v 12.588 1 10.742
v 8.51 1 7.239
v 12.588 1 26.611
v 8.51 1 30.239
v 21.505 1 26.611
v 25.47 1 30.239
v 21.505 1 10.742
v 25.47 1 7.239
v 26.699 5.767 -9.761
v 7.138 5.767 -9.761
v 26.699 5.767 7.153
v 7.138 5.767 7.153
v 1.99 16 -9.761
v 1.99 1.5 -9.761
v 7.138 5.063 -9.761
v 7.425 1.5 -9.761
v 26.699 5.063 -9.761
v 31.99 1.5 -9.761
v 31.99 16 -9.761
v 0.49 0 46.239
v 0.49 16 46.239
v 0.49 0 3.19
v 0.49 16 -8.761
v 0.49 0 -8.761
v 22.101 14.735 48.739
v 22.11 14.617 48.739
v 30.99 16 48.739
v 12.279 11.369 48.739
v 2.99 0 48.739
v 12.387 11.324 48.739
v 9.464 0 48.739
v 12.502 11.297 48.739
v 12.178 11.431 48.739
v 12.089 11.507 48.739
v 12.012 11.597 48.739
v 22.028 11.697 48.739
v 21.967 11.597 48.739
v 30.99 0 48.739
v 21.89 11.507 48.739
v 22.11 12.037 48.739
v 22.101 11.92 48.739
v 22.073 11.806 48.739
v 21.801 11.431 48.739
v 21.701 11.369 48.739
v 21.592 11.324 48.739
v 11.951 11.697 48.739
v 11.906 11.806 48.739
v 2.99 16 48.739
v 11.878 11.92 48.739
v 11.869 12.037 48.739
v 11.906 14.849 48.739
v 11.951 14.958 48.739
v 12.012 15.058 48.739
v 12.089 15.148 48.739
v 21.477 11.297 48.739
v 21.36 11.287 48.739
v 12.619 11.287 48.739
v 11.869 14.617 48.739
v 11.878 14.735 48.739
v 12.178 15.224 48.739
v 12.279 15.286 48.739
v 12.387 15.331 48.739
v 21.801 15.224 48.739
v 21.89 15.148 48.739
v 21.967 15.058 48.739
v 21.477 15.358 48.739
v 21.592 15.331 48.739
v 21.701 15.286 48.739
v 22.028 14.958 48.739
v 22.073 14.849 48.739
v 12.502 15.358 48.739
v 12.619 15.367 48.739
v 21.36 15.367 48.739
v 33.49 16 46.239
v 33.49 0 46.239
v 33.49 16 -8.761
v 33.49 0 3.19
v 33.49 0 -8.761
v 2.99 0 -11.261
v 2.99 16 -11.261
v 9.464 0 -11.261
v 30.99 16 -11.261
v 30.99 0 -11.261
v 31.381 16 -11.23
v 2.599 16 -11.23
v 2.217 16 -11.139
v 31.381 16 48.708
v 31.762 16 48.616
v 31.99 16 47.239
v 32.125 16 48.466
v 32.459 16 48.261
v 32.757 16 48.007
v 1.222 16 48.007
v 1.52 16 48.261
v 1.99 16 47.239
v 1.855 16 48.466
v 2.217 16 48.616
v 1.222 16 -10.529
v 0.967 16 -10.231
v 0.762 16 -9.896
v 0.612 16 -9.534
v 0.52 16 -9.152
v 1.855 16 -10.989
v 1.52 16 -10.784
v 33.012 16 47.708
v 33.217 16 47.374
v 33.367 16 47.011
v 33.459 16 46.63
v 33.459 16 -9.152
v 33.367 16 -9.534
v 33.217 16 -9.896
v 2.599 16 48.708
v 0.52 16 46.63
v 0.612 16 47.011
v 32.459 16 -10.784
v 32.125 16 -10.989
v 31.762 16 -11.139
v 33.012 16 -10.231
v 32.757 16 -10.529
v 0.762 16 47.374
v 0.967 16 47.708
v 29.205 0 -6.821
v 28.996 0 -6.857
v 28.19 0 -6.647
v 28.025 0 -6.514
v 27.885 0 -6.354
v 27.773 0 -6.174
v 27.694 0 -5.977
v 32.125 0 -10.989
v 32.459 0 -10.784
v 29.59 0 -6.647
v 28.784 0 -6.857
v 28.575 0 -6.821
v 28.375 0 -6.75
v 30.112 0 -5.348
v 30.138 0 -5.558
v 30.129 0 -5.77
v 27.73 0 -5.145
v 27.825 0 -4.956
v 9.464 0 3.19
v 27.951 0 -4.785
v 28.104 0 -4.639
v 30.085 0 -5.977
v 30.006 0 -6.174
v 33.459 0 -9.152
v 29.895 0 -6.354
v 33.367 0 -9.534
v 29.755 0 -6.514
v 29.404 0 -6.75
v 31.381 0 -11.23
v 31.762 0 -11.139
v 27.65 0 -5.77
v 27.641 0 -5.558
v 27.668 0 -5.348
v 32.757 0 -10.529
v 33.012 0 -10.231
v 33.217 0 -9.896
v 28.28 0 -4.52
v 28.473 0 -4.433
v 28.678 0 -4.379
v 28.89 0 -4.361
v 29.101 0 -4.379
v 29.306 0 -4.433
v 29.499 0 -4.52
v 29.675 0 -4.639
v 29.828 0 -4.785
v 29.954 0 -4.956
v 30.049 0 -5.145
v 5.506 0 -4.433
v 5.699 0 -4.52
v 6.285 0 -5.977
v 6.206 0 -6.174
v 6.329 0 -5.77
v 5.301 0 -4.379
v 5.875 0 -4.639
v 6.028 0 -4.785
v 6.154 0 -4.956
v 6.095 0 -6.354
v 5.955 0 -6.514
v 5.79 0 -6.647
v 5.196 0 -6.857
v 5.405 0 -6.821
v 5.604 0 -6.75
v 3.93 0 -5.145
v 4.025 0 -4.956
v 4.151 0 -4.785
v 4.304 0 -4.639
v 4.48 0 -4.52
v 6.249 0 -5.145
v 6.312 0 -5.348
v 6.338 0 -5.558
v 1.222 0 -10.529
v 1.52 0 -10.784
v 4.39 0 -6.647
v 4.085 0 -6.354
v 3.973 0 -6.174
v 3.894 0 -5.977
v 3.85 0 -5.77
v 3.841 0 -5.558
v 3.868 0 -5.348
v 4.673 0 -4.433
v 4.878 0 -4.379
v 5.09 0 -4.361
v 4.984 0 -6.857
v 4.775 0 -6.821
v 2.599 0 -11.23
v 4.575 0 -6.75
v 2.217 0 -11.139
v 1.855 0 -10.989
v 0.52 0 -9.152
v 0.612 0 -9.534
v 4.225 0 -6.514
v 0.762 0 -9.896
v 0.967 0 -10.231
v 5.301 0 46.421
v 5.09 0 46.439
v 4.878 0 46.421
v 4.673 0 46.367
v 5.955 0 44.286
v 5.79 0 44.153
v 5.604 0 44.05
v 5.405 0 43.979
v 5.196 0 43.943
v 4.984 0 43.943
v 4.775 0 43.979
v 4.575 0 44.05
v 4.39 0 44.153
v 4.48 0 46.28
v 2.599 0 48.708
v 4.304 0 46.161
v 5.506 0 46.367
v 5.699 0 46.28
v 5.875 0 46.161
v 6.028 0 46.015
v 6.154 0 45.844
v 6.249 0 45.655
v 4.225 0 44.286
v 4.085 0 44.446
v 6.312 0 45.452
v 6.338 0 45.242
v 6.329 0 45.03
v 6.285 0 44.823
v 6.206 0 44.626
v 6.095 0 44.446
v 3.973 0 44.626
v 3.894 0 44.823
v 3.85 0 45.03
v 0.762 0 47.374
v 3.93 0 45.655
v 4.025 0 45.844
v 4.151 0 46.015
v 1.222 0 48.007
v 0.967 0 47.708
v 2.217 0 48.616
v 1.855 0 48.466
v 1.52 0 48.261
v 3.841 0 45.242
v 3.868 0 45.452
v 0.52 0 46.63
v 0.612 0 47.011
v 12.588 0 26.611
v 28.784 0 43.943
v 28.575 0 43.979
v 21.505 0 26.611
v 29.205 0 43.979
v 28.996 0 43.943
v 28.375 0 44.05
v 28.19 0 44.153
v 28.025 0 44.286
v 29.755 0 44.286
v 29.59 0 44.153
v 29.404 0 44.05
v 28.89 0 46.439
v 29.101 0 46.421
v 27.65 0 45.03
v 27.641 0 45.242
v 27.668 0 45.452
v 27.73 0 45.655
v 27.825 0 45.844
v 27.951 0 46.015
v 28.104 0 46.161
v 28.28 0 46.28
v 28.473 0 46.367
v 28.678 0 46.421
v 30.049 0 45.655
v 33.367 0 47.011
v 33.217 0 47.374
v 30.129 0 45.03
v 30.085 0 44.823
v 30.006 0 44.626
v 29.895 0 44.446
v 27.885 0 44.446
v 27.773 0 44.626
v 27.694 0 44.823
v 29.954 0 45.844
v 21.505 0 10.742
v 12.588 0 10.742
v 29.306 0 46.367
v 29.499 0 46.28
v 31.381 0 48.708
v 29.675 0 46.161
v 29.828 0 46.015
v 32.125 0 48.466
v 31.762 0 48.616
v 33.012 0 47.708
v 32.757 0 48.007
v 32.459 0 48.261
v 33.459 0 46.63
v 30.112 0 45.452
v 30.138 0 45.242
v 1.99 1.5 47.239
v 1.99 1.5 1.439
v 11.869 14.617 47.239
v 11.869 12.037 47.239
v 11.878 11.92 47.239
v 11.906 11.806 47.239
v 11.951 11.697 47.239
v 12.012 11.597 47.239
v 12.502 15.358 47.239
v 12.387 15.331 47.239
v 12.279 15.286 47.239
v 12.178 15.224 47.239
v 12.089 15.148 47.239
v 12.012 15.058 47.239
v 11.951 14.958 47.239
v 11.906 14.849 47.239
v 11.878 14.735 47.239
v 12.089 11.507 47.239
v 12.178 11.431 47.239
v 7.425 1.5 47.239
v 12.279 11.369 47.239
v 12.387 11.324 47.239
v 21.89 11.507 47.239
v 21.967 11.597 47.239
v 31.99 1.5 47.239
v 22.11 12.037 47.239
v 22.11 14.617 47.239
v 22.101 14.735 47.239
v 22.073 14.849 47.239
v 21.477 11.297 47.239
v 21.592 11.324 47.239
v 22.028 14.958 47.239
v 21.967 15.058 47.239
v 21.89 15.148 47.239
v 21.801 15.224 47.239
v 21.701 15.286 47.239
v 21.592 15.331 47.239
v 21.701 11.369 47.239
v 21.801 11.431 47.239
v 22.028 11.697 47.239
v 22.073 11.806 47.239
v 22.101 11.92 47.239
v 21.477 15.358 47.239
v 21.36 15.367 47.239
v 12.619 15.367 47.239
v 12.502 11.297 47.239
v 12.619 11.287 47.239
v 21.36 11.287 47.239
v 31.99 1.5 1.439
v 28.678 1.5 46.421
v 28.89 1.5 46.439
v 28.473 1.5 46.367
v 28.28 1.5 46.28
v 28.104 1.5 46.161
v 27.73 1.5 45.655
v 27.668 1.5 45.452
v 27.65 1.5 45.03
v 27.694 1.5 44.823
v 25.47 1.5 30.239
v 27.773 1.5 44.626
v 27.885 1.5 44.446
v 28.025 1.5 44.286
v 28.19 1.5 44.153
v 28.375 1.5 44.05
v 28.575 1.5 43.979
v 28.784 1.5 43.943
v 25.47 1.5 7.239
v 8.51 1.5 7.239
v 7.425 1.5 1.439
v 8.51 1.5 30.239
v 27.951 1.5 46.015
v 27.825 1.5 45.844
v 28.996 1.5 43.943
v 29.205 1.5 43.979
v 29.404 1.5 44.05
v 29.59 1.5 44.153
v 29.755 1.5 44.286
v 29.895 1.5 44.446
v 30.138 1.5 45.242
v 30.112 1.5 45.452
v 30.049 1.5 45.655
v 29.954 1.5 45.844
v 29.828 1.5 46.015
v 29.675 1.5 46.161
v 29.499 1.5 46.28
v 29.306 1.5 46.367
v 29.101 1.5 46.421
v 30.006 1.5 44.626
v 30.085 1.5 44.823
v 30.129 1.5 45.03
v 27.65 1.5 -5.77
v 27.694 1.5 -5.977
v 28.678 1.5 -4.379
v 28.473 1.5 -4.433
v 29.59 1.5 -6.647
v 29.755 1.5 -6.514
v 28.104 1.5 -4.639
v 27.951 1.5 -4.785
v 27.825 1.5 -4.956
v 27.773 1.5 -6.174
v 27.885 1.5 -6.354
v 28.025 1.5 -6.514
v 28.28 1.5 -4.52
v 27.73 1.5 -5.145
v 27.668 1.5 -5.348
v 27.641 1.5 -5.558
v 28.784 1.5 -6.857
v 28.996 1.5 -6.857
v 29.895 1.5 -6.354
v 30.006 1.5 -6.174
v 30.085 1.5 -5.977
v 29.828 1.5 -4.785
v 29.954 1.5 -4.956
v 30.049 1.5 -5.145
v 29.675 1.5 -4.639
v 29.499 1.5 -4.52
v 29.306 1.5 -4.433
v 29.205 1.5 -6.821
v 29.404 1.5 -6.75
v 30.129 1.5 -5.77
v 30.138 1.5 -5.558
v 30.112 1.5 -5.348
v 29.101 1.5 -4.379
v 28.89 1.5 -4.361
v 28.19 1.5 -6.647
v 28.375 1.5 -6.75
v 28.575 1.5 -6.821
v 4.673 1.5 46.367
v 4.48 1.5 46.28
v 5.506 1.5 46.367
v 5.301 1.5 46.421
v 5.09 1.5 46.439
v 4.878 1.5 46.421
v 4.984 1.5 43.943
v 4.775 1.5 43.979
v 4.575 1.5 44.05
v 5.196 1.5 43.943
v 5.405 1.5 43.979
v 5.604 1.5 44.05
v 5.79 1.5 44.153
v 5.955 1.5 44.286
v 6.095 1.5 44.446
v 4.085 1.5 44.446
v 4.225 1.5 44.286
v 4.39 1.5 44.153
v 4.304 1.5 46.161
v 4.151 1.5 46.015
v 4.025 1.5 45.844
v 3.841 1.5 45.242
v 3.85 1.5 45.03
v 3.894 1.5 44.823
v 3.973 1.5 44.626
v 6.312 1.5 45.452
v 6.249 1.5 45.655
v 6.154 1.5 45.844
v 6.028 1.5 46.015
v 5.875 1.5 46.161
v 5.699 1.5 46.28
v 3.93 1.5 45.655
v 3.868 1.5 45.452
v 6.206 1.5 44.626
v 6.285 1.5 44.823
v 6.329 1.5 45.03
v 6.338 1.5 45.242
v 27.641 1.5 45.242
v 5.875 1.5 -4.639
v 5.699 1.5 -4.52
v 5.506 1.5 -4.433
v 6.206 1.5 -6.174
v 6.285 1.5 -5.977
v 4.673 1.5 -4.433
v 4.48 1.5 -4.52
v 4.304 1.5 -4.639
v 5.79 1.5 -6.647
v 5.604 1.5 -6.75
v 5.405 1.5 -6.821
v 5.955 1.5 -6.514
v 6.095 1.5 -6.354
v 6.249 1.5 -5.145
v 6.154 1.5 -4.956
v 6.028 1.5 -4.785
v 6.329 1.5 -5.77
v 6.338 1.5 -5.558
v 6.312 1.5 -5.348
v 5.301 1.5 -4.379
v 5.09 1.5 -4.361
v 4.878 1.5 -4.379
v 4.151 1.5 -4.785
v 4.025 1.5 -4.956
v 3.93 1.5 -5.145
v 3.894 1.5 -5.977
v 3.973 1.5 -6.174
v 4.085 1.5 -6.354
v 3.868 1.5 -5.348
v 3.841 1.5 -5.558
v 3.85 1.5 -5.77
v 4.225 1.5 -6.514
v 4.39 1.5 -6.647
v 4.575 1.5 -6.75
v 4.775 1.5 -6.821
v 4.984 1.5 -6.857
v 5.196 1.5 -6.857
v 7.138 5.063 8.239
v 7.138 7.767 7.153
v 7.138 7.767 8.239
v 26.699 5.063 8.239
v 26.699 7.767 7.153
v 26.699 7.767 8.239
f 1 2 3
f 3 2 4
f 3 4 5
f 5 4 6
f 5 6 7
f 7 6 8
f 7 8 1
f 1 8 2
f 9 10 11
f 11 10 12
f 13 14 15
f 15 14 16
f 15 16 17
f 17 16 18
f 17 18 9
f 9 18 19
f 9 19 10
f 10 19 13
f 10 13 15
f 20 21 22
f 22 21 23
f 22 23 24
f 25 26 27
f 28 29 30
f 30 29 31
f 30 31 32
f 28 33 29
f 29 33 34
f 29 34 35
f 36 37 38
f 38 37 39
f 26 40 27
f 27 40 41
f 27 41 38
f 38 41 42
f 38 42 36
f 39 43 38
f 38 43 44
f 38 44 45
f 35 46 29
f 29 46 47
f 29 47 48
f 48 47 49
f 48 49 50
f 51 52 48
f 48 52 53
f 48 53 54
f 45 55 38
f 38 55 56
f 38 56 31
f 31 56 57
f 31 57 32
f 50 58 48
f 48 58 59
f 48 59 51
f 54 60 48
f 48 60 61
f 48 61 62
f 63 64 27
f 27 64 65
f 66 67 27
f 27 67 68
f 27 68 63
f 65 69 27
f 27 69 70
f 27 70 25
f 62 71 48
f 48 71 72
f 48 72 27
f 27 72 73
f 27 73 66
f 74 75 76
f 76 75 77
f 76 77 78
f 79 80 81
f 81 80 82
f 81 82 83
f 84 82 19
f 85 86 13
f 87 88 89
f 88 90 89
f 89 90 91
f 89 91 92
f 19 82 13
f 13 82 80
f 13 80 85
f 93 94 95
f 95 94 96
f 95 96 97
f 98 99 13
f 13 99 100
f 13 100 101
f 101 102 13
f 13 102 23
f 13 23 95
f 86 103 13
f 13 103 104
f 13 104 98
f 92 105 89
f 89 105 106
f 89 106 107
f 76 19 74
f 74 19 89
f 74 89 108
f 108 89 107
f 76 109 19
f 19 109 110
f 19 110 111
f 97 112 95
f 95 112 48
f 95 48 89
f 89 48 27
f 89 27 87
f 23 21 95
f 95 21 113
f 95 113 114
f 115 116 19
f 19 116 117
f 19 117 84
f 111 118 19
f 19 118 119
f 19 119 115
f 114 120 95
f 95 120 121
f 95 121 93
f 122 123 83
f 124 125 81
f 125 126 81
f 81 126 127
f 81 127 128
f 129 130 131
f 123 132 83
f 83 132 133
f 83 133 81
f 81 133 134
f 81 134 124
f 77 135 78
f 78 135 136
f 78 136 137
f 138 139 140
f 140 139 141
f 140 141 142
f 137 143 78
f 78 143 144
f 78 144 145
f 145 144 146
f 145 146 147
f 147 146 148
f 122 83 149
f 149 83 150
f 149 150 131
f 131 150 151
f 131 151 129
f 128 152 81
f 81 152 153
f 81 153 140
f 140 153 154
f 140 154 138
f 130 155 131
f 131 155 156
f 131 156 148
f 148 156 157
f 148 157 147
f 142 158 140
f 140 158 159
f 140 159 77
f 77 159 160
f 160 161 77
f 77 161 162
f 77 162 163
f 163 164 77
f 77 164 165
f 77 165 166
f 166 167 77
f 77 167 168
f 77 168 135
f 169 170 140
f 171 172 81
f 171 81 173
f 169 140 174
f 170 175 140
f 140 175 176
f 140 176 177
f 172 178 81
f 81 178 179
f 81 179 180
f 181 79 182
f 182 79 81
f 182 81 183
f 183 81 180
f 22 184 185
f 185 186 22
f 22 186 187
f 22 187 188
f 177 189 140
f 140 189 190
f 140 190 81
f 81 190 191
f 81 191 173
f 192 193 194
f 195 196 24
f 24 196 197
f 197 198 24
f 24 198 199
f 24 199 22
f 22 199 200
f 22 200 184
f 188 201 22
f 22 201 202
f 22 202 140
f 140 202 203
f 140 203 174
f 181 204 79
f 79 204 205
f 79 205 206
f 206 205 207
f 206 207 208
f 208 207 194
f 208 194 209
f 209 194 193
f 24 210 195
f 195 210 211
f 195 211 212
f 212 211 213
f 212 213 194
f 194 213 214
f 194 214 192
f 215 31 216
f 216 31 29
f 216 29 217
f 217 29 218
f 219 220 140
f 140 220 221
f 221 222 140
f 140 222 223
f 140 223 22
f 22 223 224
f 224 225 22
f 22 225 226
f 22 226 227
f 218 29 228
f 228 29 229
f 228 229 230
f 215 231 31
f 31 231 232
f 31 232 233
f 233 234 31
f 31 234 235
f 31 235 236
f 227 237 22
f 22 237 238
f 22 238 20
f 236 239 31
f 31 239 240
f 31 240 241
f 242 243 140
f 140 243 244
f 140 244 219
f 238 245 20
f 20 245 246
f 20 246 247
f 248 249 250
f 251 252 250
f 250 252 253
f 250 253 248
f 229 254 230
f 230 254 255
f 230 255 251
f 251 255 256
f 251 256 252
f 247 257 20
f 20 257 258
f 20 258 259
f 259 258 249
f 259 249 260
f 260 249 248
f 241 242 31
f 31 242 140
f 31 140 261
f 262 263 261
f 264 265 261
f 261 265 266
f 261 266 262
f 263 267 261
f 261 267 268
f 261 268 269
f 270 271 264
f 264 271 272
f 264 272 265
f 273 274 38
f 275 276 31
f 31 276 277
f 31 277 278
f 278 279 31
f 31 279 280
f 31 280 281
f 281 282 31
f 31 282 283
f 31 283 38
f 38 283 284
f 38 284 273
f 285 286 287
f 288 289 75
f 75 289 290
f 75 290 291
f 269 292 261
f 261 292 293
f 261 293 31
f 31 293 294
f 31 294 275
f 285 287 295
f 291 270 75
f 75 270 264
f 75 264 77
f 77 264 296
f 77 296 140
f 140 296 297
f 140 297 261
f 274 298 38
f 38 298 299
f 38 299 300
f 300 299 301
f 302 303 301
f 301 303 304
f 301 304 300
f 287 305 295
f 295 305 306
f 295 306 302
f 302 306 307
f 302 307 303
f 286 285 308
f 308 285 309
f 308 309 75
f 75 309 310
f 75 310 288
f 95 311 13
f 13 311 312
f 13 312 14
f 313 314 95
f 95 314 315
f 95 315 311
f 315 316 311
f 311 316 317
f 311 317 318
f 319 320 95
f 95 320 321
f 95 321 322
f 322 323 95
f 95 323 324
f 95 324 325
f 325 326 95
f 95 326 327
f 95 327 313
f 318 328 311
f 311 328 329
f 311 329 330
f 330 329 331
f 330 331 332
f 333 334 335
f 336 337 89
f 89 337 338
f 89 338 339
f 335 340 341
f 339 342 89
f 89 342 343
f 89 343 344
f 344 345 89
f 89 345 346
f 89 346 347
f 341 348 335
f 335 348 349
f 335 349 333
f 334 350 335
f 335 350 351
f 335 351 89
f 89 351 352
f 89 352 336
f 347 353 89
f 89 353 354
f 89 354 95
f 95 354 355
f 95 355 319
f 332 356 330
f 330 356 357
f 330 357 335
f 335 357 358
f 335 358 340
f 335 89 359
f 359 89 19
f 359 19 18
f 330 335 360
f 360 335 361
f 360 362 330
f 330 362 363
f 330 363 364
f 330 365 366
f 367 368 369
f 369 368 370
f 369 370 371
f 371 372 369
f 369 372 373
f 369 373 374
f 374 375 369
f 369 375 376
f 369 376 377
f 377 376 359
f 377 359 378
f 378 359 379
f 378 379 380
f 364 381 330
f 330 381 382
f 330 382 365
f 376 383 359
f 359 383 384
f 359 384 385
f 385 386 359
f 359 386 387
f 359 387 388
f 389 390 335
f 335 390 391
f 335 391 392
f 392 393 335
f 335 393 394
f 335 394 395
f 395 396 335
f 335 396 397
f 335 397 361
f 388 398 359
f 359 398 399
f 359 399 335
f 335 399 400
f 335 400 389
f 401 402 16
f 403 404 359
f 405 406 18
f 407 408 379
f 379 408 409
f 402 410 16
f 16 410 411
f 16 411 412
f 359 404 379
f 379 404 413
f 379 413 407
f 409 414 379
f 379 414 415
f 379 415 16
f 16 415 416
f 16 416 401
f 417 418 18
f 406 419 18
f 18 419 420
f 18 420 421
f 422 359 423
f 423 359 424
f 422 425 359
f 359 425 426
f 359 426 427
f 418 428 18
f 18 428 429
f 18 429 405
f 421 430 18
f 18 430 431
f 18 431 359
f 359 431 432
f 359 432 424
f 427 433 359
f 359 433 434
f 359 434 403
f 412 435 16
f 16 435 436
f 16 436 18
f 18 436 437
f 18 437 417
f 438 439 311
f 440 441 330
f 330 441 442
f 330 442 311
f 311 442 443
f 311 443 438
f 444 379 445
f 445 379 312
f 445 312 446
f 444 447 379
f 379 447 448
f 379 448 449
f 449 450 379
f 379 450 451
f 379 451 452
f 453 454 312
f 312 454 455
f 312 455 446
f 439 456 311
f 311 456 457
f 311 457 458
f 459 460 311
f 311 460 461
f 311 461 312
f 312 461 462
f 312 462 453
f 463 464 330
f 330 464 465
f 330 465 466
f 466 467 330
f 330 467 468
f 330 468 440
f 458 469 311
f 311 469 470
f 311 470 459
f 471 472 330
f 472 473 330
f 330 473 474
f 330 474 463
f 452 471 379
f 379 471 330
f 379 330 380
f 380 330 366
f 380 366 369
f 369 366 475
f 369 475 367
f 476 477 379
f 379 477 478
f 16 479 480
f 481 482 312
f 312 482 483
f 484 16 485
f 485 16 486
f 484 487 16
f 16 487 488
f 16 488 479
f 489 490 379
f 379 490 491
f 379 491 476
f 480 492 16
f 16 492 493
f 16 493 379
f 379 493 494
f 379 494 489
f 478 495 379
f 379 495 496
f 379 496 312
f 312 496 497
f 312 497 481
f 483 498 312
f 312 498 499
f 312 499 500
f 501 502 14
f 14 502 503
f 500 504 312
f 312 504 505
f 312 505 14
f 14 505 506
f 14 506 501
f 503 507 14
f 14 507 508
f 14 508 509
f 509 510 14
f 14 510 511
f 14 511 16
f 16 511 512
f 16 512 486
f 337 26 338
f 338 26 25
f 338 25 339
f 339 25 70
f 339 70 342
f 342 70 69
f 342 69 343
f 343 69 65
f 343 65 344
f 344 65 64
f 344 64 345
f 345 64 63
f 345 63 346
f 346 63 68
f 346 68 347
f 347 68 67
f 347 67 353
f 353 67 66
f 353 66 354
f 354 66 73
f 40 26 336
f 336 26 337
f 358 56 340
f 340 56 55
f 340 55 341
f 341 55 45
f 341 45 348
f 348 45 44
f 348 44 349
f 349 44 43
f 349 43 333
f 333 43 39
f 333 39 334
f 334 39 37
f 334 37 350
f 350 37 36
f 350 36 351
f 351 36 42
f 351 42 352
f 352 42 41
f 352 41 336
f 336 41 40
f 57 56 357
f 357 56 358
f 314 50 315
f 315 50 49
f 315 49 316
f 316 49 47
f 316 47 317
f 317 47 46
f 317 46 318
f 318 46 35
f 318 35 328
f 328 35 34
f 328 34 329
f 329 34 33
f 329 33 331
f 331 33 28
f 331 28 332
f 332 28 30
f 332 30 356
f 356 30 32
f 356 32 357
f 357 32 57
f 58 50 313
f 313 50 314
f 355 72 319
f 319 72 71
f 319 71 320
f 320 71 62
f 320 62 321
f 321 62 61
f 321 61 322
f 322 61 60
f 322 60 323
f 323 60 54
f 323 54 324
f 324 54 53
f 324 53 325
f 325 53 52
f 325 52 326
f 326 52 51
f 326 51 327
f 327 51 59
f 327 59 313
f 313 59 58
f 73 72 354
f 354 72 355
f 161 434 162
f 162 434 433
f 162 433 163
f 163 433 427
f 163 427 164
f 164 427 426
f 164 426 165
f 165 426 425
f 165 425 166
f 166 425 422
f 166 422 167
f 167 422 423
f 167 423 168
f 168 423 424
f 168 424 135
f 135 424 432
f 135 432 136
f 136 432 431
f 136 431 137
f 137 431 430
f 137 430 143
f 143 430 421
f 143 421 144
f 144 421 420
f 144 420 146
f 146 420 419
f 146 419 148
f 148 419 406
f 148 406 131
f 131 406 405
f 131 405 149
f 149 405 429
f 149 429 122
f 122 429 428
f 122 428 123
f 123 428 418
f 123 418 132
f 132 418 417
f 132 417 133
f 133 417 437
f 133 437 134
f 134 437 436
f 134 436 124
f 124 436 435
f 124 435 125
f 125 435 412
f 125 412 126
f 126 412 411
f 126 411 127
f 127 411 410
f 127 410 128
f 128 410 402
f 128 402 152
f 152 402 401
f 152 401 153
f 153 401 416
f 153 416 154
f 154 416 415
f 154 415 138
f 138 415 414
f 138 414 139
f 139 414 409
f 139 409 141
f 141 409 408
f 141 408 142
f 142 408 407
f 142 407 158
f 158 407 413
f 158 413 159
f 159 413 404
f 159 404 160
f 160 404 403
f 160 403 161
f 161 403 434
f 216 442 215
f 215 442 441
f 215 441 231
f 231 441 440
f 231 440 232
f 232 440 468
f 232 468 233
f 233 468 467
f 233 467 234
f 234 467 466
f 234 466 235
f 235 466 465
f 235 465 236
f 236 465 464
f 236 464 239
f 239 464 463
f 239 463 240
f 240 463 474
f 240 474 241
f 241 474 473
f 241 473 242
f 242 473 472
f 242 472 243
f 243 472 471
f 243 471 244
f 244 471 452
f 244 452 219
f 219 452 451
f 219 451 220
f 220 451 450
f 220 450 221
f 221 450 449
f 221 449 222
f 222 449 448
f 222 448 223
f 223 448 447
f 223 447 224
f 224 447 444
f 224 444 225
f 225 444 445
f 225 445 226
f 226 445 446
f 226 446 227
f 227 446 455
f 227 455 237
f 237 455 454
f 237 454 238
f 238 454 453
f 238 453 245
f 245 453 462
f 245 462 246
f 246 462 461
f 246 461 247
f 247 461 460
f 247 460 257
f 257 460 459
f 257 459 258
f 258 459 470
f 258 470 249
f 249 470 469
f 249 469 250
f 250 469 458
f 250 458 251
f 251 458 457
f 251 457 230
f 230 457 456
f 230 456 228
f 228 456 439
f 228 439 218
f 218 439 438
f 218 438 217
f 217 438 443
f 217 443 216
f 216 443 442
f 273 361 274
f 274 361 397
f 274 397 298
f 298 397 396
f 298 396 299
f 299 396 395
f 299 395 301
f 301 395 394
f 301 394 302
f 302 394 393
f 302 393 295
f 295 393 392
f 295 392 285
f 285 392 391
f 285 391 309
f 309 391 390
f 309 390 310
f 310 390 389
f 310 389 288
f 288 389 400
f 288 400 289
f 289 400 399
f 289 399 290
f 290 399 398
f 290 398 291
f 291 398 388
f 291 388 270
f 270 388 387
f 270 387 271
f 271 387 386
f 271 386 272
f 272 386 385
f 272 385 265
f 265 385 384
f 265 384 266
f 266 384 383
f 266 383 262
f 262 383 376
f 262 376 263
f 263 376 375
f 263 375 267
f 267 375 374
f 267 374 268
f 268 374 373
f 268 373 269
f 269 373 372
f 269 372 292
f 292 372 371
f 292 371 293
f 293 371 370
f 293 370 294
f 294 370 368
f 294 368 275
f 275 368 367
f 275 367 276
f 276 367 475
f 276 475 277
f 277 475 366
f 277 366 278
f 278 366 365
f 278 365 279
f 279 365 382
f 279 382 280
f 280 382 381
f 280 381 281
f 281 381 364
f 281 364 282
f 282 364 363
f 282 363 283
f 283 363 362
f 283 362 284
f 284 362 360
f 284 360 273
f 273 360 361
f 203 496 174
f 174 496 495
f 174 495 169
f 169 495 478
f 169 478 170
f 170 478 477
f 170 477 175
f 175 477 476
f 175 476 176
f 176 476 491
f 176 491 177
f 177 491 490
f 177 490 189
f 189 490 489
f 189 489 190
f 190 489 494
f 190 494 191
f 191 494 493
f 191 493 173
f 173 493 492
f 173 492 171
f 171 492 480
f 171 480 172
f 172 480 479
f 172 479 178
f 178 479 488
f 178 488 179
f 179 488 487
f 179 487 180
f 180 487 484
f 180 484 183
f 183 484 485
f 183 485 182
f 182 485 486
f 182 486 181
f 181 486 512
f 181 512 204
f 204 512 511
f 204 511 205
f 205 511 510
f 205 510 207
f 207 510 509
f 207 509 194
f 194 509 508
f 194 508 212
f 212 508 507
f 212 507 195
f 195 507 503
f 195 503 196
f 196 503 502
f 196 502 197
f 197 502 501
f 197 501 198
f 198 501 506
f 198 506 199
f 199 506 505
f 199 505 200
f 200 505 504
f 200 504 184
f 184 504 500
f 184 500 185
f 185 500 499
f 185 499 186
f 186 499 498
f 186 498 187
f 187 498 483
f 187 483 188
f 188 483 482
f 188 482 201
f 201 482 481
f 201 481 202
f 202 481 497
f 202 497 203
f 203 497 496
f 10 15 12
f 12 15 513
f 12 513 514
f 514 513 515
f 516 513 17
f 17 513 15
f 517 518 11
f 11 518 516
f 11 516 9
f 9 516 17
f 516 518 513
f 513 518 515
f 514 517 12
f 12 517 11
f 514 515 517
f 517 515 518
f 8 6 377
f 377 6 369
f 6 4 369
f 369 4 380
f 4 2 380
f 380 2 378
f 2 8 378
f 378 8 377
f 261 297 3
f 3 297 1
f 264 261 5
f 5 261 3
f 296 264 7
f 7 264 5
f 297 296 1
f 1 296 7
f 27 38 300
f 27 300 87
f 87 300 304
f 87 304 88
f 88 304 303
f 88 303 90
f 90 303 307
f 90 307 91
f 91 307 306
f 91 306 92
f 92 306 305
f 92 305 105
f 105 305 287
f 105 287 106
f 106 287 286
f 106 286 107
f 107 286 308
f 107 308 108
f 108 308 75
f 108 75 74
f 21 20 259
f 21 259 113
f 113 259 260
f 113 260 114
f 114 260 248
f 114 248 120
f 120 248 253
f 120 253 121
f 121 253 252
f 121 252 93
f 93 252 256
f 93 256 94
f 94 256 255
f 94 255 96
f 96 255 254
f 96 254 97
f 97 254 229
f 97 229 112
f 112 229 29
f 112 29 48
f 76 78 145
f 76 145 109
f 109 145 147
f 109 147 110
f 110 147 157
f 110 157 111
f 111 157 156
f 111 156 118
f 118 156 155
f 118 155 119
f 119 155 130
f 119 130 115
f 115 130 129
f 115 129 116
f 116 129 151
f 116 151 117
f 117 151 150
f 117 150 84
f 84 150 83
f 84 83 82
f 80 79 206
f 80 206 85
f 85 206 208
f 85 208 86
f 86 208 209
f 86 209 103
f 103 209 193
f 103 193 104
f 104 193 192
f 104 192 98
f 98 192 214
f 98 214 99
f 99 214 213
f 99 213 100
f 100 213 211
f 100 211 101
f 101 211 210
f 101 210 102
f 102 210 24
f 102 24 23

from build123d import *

# Parameters (mm, degrees)
SKETCH1_W               = 33
SKETCH1_H               = 60
BOSS_EXTRUDE1_DEPTH     = 16
SHELL1_T                = -1.5
CUT_EXTRUDE2_DEPTH      = 10
SKETCH5_R               = 1.25
CUT_EXTRUDE3_DEPTH      = 1
CUT_EXTRUDE3_DEPTH_BACK = 3
SKETCH6_W               = 19.561169912
SKETCH6_H               = 0.704256658
BOSS_EXTRUDE2_DEPTH     = 18
SKETCH7_W               = 19.561169912
SKETCH7_H               = 1.086114883
BOSS_EXTRUDE3_DEPTH     = 2
SKETCH9_W               = 16.960059774
SKETCH9_H               = 23
CUT_EXTRUDE4_DEPTH      = 0.5
CUT_EXTRUDE6_REACH      = 18
SKETCH11_W              = 8.91696513
SKETCH11_H              = 15.868910044
FILLET1_R               = 2.5


with BuildPart() as part:
    # Sketch1 → Boss-Extrude1 (new body)
    with BuildSketch(Plane(origin=(0, 0, 0), x_dir=(1, 0, 0), z_dir=(0, 1, 0))):
        with Locations((16.989591658, -18.738797177)):
            Rectangle(SKETCH1_W, SKETCH1_H)
    extrude(amount=BOSS_EXTRUDE1_DEPTH)

    # Shell1
    shell1_openings = [part.faces().sort_by_distance(p)[0] for p in [
        (16.989591658, 16, 18.738797177),
    ]]
    offset(amount=SHELL1_T, openings=shell1_openings, kind=Kind.INTERSECTION)

    # Sketch4 → Cut-Extrude2 (cut)
    with BuildSketch(Plane.XY.offset(48.738797177)):
        with BuildLine():
            Line((12.619091925, 11.287469293), (21.360091391, 11.287469293))
            ThreePointArc((21.360091391, 11.287469293), (21.890421477, 11.507139207), (22.110091391, 12.037469293))
            Line((22.110091391, 12.037469293), (22.110091391, 14.61730298))
            ThreePointArc((22.110091391, 14.61730298), (21.890421477, 15.147633066), (21.360091391, 15.36730298))
            Line((21.360091391, 15.36730298), (12.619091925, 15.36730298))
            ThreePointArc((12.619091925, 15.36730298), (12.088761839, 15.147633066), (11.869091925, 14.61730298))
            Line((11.869091925, 14.61730298), (11.869091925, 12.037469293))
            ThreePointArc((11.869091925, 12.037469293), (12.088761839, 11.507139207), (12.619091925, 11.287469293))
        make_face()
    extrude(amount=-CUT_EXTRUDE2_DEPTH, mode=Mode.SUBTRACT)

    # Sketch5 → Cut-Extrude3 (cut, two sides)
    with BuildSketch(Plane.XZ) as cut_extrude3_sk:
        with Locations((28.889591658, 45.188797177)):
            Circle(SKETCH5_R)
        with Locations((5.089591658, 45.188797177)):
            Circle(SKETCH5_R)
        with Locations((28.889591658, -5.611202823)):
            Circle(SKETCH5_R)
        with Locations((5.089591658, -5.611202823)):
            Circle(SKETCH5_R)
    extrude(amount=CUT_EXTRUDE3_DEPTH, mode=Mode.SUBTRACT)
    extrude(cut_extrude3_sk.sketch, amount=-CUT_EXTRUDE3_DEPTH_BACK, mode=Mode.SUBTRACT)

    # Sketch6 → Boss-Extrude2 (add)
    with BuildSketch(Plane.XY.offset(-9.761202823)):
        with Locations((16.918287272, 5.415344609)):
            Rectangle(SKETCH6_W, SKETCH6_H)
    extrude(amount=BOSS_EXTRUDE2_DEPTH)

    # Sketch7 → Boss-Extrude3 (add)
    with BuildSketch(Plane(origin=(0, 5.767472938, 0), x_dir=(1, 0, 0), z_dir=(0, 1, 0))):
        with Locations((16.918287272, -7.695739736)):
            Rectangle(SKETCH7_W, SKETCH7_H)
    extrude(amount=BOSS_EXTRUDE3_DEPTH)

    # Sketch9 → Cut-Extrude4 (cut)
    with BuildSketch(Plane(origin=(0, 1.5, 0), x_dir=(1, 0, 0), z_dir=(0, 1, 0))):
        with Locations((16.989591658, -18.738797177)):
            Rectangle(SKETCH9_W, SKETCH9_H)
    extrude(amount=-CUT_EXTRUDE4_DEPTH, mode=Mode.SUBTRACT)

    # Sketch11 → Cut-Extrude6 (cut, up to next)
    with BuildSketch(Plane.XZ, mode=Mode.PRIVATE) as cut_extrude6_sk1:
        with Locations((17.046338664, 18.676425411)):
            Rectangle(SKETCH11_W, SKETCH11_H)
    cut_extrude6_tool1 = extrude(cut_extrude6_sk1.sketch, amount=-CUT_EXTRUDE6_REACH, mode=Mode.PRIVATE) & part.part
    add(cut_extrude6_tool1.solids().sort_by_distance((17.046339, 0, 18.676425))[0], mode=Mode.SUBTRACT)

    # Fillet1
    fillet1_edges = [part.edges().sort_by_distance(p)[0] for p in [
        (0.489591658, 8, -11.261202823),
        (33.489591658, 8, -11.261202823),
        (33.489591658, 8, 48.738797177),
        (0.489591658, 8, 48.738797177),
    ]]
    fillet(fillet1_edges, radius=FILLET1_R)


solid = part.part
